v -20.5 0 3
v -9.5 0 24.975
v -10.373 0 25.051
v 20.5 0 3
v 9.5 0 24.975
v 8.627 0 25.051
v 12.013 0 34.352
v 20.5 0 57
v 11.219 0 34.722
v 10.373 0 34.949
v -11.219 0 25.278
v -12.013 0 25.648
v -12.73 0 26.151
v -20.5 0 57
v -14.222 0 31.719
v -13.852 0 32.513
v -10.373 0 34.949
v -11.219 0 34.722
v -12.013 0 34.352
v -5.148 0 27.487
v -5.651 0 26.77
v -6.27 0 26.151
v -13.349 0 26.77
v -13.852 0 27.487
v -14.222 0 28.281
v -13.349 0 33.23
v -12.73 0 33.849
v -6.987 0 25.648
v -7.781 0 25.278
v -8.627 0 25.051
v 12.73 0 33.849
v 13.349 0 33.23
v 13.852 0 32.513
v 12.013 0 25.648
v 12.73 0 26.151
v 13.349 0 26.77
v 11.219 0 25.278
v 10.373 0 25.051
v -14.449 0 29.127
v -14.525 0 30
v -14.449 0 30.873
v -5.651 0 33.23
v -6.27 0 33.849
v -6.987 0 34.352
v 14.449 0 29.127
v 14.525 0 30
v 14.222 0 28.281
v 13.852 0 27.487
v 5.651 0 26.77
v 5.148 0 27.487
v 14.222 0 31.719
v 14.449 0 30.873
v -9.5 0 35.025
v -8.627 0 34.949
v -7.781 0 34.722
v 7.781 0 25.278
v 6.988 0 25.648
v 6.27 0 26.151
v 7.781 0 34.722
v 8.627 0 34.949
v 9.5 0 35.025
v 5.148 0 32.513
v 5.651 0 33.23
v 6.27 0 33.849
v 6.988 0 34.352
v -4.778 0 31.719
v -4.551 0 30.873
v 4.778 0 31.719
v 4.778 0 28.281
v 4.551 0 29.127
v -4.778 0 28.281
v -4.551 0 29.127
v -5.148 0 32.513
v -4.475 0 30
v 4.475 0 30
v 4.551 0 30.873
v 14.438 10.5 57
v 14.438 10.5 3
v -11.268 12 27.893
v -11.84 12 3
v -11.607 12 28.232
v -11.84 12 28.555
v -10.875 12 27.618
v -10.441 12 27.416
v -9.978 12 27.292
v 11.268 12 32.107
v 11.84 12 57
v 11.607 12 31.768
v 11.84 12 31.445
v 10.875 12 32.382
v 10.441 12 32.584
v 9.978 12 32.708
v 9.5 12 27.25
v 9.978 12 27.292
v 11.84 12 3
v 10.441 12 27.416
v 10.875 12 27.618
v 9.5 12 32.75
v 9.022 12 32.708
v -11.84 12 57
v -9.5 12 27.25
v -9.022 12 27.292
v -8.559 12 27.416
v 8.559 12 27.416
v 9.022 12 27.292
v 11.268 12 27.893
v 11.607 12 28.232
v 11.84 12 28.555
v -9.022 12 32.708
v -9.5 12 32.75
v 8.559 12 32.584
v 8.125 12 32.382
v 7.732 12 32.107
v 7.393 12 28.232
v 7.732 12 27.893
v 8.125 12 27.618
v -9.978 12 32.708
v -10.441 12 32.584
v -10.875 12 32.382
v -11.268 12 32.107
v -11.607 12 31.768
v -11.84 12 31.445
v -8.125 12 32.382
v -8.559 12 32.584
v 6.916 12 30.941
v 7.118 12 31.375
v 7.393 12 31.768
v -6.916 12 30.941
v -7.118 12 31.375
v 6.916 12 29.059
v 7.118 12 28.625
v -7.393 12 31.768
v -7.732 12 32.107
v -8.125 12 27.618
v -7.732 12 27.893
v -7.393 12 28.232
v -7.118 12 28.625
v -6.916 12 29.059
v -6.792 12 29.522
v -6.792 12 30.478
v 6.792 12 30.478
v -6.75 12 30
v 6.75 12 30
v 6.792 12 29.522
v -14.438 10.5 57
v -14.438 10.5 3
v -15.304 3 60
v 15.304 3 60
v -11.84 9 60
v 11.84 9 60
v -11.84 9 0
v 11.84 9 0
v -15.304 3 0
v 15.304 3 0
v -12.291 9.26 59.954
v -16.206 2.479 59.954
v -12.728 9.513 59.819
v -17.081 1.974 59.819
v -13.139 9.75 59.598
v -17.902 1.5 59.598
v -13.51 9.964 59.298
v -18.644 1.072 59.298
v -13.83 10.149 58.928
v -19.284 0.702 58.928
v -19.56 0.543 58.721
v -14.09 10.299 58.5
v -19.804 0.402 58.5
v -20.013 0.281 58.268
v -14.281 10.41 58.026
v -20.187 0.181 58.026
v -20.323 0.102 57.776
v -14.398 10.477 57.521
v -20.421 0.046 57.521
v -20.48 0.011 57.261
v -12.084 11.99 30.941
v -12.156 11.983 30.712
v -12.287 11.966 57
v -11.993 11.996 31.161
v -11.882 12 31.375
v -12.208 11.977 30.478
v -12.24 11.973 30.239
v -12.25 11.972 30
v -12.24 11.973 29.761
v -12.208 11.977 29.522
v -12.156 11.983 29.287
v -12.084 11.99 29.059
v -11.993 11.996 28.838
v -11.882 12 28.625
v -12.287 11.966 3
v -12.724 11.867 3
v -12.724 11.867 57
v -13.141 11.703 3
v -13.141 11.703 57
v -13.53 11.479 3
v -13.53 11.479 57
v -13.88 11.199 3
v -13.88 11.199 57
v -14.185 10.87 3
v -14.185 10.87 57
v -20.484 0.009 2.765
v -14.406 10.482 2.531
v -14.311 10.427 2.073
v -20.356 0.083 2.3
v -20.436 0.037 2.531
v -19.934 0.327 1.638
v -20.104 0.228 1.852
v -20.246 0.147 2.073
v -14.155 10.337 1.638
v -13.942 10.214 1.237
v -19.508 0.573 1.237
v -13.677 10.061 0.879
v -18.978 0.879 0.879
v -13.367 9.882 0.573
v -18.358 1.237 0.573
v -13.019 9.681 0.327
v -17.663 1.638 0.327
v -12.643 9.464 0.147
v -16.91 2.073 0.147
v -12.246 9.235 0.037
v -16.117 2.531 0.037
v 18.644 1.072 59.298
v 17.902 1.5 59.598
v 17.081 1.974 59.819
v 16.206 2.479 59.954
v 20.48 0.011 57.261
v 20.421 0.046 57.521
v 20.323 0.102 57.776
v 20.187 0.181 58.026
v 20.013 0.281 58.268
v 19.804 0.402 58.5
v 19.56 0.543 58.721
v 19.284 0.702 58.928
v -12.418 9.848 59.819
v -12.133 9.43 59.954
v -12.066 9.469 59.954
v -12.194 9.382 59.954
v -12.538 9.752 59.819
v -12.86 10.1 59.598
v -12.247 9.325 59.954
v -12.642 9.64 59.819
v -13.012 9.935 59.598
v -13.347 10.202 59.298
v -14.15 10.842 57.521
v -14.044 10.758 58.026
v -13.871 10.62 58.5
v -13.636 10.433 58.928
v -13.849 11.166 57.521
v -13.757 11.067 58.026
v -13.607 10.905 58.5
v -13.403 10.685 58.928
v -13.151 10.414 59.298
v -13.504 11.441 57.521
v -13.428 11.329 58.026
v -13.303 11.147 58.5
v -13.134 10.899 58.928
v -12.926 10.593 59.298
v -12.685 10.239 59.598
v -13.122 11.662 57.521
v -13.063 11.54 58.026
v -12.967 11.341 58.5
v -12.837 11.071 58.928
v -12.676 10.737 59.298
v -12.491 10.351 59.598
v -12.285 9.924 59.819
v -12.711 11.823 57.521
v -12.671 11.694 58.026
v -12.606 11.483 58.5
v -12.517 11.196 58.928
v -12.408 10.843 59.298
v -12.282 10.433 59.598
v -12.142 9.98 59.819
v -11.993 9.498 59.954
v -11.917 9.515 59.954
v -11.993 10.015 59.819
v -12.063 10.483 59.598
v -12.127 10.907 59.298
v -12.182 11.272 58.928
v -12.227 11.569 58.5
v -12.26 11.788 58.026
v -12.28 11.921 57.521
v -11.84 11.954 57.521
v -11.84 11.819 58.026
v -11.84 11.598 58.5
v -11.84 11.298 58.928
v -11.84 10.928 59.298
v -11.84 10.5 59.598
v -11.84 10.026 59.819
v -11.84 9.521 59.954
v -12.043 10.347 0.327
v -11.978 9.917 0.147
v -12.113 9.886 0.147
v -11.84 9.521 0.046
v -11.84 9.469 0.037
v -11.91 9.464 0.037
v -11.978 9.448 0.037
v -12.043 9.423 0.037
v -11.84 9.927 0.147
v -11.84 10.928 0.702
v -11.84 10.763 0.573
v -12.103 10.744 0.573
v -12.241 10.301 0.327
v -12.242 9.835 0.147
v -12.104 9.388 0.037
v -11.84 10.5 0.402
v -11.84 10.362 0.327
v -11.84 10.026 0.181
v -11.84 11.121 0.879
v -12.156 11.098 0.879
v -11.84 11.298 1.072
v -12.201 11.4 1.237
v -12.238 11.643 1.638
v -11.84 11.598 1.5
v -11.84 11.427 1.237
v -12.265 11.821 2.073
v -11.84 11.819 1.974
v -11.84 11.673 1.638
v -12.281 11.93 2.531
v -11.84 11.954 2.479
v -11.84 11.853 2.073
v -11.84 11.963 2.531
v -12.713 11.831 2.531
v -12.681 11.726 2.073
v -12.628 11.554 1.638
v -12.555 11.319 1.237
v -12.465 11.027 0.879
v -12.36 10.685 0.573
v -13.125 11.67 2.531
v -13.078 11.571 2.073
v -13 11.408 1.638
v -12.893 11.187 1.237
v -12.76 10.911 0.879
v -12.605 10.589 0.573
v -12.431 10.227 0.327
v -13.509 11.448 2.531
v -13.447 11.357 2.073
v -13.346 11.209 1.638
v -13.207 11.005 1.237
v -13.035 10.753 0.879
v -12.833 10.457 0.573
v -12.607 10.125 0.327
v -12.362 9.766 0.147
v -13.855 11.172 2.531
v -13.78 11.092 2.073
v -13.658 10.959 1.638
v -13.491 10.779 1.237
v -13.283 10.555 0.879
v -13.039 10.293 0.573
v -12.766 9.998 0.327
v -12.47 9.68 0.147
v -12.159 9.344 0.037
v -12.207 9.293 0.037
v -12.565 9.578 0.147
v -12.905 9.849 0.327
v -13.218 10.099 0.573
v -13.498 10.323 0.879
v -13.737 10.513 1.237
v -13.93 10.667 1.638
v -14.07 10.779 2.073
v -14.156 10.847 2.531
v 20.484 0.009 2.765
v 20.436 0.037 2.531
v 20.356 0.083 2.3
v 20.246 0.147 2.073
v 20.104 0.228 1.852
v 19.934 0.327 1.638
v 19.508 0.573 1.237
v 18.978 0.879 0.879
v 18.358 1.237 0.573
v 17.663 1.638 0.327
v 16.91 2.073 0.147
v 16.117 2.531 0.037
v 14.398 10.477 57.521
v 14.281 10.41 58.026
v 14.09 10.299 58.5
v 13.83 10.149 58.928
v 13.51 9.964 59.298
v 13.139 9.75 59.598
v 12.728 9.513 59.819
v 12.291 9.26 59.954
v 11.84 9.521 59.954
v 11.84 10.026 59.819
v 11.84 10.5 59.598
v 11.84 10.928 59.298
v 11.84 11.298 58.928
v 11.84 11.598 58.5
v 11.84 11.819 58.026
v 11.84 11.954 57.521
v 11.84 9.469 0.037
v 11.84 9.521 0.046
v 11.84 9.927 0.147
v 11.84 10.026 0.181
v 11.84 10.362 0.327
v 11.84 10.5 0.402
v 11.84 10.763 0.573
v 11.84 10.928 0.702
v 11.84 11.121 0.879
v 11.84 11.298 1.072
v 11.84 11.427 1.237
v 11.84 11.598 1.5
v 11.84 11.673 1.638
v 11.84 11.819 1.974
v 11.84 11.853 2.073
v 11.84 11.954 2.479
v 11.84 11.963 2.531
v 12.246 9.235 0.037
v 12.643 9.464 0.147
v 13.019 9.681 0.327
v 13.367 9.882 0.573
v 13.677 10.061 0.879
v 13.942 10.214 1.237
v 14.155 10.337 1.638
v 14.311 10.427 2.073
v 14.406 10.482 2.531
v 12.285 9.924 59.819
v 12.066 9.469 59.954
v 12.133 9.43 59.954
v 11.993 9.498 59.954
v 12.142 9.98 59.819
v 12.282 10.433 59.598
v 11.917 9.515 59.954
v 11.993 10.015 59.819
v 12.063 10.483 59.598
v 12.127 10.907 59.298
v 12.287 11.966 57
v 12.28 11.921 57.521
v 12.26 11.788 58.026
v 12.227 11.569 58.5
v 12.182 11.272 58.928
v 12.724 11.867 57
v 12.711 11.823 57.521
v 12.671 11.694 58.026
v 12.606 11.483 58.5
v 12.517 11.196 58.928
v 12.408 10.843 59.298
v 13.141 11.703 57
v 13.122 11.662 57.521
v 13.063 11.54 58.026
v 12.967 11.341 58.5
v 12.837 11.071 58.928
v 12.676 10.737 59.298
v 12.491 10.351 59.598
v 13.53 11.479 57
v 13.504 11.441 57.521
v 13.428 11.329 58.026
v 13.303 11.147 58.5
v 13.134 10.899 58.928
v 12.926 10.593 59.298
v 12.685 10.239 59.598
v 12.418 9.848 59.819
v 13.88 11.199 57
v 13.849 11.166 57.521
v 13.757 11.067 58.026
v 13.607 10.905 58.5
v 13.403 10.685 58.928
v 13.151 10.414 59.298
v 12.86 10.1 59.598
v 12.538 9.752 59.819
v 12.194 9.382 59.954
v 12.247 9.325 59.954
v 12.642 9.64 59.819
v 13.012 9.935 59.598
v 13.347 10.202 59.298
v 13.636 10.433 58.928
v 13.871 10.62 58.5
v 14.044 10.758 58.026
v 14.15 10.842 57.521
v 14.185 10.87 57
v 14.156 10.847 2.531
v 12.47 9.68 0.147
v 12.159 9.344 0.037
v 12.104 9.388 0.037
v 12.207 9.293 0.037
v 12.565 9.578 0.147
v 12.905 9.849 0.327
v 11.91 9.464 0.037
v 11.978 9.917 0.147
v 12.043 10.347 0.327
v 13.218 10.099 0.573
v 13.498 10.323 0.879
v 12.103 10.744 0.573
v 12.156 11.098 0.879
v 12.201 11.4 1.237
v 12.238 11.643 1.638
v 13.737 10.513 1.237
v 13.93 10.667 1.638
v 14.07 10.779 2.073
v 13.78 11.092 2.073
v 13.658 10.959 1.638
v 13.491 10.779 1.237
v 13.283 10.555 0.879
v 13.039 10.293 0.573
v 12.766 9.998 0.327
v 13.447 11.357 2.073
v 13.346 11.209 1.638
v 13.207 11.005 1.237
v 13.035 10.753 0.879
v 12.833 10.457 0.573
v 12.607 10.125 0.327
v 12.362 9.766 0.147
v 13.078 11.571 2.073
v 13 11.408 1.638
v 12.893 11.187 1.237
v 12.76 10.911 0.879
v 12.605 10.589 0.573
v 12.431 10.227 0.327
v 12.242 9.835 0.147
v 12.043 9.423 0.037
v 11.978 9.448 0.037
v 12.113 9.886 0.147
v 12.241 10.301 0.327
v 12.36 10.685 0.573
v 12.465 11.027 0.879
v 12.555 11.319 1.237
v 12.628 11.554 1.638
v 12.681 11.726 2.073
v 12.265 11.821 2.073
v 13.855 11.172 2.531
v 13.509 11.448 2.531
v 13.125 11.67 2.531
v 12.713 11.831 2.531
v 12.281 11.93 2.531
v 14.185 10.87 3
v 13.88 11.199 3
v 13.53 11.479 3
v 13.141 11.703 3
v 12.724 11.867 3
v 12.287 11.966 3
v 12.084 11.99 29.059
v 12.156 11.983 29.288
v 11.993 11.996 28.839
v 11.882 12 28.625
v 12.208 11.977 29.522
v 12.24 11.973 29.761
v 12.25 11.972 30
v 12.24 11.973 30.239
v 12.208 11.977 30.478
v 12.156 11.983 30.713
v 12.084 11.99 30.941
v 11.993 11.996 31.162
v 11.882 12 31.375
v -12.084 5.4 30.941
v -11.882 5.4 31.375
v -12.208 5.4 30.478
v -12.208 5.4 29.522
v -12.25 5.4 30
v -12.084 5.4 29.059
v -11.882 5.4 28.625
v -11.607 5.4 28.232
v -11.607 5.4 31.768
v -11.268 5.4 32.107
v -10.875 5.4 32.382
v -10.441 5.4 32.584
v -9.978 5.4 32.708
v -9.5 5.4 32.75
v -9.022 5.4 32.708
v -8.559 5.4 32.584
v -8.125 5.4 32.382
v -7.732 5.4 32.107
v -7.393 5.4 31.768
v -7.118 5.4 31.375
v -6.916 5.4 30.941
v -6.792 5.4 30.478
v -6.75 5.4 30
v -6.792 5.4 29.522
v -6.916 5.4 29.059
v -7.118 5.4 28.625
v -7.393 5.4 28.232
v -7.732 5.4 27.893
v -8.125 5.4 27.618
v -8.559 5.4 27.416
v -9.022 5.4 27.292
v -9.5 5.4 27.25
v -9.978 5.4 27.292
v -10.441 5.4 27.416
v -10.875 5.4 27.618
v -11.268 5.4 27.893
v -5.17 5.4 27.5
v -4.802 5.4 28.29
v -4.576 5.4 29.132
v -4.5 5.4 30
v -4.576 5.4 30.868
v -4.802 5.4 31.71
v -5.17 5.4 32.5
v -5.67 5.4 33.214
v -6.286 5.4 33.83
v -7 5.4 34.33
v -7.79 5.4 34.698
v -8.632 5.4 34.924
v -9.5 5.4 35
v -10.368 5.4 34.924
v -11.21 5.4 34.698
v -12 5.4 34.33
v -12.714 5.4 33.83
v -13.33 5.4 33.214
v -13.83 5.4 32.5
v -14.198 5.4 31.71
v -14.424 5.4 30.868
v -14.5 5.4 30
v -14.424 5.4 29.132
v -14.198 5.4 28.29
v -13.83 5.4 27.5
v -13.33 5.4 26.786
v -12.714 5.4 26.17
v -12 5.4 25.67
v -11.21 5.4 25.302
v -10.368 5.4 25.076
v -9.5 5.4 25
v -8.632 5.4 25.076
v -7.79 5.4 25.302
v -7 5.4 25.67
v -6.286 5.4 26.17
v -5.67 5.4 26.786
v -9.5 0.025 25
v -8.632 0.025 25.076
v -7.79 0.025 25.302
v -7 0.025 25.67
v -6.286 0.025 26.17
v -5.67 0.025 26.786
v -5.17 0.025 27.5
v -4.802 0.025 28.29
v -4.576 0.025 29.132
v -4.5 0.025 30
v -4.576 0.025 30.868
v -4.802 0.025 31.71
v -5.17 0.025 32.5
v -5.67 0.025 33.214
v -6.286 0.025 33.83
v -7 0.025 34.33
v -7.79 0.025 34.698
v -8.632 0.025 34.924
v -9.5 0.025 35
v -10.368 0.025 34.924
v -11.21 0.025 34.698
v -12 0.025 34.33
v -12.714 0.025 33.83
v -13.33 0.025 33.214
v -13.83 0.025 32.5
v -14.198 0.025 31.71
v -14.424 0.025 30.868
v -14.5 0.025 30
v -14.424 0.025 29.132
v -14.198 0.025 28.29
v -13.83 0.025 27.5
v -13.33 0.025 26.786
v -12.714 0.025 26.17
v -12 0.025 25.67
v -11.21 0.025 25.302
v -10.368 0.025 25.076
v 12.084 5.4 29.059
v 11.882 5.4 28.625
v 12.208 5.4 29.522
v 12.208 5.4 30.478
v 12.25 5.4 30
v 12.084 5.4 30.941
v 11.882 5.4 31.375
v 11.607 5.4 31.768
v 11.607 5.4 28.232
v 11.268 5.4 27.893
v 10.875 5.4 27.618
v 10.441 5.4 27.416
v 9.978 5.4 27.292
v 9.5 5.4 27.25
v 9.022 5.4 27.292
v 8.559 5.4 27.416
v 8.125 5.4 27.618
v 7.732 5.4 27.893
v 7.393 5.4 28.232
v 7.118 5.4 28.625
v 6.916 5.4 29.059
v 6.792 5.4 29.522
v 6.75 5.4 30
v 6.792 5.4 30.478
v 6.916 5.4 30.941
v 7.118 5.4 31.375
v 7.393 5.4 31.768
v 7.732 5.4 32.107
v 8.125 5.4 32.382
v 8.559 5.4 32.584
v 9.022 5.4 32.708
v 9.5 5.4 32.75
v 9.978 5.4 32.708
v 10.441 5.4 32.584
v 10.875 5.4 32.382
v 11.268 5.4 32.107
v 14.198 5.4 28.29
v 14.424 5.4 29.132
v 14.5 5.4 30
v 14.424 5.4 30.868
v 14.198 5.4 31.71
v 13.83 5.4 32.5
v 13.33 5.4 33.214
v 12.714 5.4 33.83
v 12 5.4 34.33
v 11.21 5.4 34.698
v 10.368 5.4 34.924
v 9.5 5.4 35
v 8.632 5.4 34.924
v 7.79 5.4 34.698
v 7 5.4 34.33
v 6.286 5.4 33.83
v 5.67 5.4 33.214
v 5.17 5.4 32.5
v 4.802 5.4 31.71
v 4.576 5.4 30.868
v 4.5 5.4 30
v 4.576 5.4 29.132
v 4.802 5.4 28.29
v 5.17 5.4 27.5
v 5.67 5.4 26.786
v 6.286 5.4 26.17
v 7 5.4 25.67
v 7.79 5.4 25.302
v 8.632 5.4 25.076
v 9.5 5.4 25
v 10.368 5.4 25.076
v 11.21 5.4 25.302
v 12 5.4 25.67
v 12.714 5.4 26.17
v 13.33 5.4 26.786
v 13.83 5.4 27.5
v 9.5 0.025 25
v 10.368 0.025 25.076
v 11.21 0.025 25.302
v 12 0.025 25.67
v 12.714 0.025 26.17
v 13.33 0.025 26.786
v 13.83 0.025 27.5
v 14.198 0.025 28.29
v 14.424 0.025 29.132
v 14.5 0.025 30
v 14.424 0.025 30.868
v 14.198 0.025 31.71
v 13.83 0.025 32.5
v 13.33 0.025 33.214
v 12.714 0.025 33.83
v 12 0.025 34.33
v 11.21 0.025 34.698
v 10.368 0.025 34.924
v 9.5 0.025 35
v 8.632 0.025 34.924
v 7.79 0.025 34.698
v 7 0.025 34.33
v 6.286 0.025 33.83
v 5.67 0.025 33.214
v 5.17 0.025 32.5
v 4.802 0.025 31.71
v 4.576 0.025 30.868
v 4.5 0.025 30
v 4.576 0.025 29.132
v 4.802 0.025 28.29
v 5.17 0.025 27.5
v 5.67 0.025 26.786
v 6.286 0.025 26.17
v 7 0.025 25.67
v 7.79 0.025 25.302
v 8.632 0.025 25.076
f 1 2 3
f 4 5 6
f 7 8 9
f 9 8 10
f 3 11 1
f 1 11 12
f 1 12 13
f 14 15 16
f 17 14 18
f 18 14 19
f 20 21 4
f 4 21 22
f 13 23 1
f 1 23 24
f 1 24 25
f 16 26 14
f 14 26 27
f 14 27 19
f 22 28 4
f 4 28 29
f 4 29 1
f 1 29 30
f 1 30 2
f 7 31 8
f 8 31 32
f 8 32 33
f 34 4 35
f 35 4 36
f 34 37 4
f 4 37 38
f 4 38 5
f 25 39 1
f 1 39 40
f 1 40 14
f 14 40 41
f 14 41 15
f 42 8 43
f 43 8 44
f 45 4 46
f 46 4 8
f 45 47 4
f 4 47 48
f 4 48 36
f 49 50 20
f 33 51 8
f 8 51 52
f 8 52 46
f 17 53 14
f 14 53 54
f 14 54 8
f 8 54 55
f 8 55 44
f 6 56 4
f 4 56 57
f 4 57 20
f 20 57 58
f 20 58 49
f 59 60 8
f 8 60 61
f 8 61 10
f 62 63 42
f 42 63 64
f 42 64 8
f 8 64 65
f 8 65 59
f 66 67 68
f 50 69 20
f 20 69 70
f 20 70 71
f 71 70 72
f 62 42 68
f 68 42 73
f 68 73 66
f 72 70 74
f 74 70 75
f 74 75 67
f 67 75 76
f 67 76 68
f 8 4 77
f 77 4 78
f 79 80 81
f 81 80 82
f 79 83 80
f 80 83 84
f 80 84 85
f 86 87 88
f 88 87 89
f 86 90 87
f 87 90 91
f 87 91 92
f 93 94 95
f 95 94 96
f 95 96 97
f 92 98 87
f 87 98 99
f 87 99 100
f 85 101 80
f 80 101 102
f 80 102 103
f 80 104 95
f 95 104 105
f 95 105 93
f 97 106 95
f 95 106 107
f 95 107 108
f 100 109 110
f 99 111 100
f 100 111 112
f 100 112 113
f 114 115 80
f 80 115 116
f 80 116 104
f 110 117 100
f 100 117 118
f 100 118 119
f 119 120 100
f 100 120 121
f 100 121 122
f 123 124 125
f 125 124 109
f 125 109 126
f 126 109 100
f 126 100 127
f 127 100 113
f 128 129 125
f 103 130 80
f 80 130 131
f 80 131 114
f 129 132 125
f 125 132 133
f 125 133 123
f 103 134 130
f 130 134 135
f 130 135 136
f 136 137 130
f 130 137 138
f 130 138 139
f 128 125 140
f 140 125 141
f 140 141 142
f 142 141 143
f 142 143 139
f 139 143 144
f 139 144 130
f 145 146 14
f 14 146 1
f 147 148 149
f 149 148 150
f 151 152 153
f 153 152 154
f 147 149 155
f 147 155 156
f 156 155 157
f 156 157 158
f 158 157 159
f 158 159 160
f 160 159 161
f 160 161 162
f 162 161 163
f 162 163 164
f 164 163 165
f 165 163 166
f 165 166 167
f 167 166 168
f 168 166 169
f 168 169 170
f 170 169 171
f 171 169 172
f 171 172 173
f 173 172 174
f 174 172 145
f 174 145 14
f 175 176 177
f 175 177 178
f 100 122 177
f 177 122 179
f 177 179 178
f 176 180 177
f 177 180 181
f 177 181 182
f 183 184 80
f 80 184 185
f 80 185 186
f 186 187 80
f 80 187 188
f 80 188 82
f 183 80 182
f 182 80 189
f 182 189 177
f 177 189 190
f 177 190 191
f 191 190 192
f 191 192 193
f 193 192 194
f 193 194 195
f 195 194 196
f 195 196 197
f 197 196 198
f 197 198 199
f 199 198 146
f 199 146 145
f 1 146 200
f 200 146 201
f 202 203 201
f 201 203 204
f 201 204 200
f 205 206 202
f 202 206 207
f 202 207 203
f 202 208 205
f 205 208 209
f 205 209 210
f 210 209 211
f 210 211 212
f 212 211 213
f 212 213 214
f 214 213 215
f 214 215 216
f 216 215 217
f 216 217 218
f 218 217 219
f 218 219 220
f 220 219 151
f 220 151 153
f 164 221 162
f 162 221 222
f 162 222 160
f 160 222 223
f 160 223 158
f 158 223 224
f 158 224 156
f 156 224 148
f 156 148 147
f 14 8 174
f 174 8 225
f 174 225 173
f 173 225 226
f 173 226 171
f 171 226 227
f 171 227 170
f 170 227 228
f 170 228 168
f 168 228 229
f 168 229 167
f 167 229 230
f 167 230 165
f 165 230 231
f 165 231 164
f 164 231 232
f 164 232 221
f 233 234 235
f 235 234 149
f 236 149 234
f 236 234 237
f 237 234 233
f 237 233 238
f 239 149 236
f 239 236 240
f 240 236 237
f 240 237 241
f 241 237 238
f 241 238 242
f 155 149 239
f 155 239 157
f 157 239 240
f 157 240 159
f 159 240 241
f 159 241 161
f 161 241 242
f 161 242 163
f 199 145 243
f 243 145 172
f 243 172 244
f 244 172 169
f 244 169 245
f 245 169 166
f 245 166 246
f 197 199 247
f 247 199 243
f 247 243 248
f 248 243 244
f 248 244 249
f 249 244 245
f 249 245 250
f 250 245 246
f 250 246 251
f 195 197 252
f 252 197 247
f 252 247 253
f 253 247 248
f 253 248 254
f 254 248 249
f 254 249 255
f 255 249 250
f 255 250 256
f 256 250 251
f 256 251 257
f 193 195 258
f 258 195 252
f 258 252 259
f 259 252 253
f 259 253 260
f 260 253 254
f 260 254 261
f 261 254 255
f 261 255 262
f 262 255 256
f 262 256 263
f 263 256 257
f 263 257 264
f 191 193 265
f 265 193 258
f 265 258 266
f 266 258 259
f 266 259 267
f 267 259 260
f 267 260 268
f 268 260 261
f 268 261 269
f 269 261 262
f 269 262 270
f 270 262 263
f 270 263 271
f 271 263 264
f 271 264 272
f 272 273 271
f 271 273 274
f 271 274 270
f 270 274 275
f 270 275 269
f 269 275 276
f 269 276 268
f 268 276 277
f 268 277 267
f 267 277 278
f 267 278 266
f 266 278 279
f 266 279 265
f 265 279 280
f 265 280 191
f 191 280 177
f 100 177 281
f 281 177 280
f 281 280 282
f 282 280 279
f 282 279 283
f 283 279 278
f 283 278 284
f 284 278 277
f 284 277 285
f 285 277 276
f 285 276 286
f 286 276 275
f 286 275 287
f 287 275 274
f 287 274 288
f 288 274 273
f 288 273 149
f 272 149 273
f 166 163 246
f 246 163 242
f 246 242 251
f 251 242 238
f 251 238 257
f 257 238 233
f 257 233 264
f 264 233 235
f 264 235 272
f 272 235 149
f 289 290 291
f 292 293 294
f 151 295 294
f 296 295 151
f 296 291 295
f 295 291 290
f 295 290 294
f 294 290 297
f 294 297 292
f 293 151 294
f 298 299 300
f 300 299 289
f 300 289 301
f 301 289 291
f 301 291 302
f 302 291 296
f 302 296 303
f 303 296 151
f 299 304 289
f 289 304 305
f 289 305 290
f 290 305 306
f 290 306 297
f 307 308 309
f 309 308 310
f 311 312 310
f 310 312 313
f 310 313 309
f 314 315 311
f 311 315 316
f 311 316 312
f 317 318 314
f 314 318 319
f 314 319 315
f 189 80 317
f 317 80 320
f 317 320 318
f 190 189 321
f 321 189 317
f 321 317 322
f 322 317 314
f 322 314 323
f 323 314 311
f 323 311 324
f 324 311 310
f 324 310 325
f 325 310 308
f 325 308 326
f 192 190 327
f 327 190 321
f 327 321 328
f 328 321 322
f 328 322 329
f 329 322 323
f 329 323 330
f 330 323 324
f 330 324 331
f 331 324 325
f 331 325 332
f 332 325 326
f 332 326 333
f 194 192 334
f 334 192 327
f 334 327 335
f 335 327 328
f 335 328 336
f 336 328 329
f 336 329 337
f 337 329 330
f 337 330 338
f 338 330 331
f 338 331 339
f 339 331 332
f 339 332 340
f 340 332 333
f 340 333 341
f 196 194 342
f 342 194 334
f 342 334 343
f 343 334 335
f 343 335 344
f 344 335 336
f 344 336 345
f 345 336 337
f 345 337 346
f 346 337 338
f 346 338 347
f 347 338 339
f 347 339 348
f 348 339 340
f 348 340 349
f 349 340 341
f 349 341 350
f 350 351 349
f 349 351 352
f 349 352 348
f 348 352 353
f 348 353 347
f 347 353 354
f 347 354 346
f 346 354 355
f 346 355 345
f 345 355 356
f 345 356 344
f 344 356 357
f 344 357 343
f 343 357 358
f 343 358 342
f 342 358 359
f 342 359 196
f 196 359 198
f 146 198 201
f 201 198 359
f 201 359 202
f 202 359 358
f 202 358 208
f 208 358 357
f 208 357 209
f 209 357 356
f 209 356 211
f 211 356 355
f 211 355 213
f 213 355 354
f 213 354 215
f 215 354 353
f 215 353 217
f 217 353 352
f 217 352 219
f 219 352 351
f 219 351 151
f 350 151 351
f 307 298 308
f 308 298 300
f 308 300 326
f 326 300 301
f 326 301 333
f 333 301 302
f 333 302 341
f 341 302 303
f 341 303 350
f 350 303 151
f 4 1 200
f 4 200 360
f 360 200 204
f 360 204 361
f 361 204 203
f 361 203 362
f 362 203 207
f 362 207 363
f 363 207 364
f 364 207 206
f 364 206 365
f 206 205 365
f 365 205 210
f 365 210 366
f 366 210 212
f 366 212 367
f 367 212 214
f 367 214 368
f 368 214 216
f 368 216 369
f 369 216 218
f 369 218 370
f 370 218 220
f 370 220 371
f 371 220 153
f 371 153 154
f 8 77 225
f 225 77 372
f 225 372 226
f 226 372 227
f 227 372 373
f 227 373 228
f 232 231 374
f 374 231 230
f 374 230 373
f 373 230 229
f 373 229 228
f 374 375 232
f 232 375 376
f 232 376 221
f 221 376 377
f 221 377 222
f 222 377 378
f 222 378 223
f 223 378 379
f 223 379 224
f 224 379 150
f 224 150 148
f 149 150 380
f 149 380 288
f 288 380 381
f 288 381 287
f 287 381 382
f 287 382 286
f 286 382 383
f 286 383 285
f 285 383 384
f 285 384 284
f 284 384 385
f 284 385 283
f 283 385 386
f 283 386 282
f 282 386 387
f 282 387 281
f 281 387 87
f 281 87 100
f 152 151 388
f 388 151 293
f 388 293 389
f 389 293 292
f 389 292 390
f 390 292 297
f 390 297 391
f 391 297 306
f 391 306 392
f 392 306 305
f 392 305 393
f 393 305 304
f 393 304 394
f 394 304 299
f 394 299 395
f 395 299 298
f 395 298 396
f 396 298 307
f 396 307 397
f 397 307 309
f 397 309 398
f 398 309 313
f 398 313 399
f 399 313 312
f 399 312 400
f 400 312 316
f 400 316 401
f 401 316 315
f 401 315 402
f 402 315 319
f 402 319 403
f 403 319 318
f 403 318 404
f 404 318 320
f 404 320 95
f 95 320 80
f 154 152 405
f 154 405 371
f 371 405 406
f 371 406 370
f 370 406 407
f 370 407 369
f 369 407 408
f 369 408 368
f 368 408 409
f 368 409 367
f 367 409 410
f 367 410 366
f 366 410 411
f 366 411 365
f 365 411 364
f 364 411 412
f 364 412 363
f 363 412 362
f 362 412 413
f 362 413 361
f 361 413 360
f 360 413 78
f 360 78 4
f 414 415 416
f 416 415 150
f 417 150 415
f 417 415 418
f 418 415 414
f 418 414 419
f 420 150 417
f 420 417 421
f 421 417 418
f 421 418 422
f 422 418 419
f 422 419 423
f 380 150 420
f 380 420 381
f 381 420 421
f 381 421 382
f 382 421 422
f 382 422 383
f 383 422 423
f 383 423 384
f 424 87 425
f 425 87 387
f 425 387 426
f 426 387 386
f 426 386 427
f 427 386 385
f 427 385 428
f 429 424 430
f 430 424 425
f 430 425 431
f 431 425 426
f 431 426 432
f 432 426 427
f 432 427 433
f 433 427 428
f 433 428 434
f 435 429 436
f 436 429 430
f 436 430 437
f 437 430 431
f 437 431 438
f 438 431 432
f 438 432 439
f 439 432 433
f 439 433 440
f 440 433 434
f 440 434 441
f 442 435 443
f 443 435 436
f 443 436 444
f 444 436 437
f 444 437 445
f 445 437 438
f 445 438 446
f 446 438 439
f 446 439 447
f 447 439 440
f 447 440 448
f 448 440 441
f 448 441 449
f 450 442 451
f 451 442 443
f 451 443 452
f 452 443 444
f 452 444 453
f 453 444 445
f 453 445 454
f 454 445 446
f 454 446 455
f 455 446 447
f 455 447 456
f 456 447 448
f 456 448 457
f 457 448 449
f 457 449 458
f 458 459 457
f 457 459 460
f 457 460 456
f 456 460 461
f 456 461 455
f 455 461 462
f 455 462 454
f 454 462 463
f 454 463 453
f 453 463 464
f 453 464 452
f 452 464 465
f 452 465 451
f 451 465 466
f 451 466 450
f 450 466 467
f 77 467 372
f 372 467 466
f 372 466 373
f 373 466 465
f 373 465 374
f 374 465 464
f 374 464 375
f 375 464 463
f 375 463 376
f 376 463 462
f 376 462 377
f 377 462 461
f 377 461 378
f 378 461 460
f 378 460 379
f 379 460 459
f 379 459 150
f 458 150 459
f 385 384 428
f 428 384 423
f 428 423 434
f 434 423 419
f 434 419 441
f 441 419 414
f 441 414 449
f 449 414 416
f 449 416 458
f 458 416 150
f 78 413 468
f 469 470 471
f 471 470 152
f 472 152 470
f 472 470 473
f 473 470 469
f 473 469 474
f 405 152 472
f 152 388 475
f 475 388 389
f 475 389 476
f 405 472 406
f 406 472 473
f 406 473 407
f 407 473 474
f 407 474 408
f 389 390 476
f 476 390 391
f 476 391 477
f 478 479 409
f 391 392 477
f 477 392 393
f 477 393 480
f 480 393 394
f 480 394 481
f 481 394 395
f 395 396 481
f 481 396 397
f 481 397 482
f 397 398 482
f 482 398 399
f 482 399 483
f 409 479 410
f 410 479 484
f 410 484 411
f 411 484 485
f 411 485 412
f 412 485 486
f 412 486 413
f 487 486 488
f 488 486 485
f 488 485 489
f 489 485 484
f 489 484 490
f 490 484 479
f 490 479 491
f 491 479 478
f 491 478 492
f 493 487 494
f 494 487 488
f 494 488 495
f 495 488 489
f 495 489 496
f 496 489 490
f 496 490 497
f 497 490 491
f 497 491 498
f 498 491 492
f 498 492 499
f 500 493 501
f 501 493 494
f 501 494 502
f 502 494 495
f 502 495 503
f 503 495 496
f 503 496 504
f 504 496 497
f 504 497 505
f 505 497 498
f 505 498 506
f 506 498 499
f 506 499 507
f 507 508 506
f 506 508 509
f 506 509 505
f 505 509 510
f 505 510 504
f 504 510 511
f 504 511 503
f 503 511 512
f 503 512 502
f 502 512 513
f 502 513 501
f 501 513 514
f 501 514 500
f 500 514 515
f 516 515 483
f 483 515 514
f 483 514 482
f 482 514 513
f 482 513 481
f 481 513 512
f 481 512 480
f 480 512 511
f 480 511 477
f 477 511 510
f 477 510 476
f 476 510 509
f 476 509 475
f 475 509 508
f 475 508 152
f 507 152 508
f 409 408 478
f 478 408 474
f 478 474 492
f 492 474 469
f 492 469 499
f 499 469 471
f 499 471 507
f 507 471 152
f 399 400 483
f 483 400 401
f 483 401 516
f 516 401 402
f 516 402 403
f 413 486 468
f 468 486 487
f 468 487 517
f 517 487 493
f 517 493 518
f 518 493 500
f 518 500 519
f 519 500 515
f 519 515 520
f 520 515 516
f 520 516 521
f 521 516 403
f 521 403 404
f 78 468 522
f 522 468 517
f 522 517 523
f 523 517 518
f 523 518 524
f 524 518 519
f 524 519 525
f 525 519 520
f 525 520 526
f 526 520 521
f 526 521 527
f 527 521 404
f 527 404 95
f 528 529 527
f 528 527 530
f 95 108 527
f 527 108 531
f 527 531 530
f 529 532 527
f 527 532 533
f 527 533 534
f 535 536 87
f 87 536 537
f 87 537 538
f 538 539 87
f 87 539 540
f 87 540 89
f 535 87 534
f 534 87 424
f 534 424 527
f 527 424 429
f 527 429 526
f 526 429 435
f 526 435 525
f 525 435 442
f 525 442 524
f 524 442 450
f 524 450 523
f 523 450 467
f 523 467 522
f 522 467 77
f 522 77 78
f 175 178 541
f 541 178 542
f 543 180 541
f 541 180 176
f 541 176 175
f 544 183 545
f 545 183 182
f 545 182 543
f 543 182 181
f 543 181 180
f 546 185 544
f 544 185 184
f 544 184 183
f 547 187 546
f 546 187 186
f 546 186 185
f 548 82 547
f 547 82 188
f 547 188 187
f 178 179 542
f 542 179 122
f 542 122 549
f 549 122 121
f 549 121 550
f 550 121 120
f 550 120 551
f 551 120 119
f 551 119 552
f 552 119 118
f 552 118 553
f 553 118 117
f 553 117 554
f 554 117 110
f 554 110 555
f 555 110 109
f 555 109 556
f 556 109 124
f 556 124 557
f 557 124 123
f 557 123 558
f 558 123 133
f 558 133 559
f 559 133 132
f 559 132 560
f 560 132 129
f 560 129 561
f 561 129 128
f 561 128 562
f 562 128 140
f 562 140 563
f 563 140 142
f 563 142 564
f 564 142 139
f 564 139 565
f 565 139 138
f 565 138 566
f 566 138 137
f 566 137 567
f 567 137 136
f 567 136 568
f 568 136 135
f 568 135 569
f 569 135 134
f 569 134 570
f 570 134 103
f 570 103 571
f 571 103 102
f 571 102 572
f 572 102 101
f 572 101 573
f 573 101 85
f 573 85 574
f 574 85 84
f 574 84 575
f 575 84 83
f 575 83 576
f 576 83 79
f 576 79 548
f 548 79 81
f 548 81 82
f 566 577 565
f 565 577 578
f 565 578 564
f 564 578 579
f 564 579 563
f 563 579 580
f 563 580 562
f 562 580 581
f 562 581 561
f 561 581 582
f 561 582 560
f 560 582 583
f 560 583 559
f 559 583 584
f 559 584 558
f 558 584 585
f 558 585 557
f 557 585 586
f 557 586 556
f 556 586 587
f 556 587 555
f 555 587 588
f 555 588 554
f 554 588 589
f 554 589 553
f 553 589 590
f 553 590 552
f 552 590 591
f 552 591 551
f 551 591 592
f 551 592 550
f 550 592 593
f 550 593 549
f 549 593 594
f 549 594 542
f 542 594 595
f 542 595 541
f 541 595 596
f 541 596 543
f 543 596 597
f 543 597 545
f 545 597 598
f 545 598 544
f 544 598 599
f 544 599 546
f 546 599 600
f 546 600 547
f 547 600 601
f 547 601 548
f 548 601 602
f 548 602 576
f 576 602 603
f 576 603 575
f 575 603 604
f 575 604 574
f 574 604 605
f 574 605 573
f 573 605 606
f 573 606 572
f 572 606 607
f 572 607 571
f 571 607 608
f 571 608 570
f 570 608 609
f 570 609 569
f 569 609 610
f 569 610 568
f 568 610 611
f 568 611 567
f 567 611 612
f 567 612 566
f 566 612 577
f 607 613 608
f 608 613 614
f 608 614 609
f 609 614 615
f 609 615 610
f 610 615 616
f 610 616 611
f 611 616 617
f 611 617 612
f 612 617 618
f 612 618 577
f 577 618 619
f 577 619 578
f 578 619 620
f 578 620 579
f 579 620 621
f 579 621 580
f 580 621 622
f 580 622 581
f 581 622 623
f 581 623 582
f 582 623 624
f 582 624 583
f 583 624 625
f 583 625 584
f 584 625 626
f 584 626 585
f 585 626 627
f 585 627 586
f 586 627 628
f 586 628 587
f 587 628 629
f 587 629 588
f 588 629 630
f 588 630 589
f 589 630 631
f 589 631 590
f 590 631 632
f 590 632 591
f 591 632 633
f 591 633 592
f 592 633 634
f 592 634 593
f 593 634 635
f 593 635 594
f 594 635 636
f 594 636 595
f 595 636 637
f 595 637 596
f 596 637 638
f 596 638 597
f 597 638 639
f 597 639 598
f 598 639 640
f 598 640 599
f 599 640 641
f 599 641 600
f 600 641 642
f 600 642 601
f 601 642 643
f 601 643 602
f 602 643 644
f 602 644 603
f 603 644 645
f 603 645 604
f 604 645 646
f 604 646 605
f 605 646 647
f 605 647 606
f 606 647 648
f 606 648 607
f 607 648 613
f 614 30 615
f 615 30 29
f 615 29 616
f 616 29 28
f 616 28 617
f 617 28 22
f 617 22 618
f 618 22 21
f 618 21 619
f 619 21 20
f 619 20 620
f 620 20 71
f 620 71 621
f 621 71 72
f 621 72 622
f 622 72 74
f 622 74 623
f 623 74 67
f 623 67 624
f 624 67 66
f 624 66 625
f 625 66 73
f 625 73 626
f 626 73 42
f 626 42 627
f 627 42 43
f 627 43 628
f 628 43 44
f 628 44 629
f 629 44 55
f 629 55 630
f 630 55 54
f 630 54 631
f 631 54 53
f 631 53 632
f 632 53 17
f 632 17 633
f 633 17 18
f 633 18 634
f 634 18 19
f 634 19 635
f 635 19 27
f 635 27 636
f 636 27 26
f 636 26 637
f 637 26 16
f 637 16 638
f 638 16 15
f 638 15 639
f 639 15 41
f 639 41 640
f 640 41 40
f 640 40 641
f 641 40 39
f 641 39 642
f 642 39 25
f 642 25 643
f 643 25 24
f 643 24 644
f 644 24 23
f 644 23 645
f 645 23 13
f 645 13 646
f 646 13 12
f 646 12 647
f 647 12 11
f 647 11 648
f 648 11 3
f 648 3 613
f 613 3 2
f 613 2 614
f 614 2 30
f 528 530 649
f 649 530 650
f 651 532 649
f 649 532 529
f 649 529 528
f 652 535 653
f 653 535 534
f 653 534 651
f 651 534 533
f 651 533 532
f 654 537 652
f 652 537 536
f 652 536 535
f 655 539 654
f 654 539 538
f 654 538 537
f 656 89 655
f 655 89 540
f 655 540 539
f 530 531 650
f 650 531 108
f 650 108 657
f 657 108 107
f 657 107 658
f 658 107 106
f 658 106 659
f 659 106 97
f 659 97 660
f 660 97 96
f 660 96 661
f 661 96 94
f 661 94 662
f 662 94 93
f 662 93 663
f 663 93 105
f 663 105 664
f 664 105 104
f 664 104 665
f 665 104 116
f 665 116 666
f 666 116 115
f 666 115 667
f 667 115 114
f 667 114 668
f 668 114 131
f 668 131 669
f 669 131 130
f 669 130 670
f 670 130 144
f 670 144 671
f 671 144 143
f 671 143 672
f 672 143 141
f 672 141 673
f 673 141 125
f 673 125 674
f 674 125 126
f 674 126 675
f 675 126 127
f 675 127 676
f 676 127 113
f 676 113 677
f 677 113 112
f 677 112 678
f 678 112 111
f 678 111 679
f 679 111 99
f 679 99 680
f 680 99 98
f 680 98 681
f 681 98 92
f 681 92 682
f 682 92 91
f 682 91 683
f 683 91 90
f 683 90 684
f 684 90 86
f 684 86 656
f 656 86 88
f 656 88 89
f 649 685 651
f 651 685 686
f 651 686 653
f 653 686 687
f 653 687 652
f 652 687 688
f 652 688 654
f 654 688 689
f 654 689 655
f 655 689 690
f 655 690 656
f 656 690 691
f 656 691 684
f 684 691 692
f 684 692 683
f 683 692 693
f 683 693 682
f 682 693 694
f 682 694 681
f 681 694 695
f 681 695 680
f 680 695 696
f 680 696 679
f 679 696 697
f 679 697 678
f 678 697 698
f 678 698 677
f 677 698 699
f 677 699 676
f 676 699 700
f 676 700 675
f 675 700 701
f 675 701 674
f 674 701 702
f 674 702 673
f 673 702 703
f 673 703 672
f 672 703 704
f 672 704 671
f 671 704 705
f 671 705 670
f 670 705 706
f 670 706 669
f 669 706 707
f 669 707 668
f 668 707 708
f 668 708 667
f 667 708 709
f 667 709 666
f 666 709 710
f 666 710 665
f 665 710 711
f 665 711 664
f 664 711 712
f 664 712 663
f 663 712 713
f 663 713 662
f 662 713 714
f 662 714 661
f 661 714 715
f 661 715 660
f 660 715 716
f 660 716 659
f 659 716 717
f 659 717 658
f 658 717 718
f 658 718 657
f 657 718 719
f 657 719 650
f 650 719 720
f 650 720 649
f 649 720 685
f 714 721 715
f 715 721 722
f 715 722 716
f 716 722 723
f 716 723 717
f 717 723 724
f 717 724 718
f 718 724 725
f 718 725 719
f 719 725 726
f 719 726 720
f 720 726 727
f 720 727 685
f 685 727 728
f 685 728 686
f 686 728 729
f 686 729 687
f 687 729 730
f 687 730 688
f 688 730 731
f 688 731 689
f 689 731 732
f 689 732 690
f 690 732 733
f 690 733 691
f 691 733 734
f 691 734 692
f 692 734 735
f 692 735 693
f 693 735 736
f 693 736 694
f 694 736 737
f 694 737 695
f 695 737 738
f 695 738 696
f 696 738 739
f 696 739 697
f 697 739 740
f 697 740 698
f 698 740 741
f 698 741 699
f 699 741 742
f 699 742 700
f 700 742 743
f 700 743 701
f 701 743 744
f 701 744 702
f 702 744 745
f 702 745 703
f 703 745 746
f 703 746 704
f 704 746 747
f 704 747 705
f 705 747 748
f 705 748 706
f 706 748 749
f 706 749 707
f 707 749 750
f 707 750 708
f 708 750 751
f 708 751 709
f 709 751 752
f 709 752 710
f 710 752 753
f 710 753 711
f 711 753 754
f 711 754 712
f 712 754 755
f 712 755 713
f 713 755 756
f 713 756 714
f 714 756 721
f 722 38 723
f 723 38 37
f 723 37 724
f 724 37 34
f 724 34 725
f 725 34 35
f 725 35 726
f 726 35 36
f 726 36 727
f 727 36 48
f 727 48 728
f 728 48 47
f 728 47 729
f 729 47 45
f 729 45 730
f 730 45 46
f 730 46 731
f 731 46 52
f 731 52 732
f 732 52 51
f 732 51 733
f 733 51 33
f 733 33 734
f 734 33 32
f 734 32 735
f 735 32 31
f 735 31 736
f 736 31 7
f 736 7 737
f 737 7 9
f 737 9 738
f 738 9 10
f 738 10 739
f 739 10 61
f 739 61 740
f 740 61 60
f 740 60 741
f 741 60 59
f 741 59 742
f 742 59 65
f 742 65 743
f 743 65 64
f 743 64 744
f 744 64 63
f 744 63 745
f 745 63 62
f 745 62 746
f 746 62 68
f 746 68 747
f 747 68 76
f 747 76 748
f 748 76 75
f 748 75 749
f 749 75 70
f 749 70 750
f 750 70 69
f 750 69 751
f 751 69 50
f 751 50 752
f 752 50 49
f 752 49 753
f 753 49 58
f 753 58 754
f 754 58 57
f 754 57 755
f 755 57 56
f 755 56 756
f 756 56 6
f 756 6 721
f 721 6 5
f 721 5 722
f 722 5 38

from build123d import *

# Parameters (mm, degrees)
BOSS_EXTRUDE1_DEPTH                          = 60
FILLET1_R                                    = 3
CBORE_FOR_M5_HEX_SOCKET_HEAD_CAP_SCR_2_COUNT = 2
CBORE_FOR_M5_HEX_SOCKET_HEAD_CAP_SCR_2_PITCH = 19


with BuildPart() as part:
    # Sketch1 → Boss-Extrude1 (new body)
    with BuildSketch(Plane.XY):
        Polygon((-20.5, 0), (-13.57179677, 12), (13.57179677, 12), (20.5, 0), align=None)
    extrude(amount=BOSS_EXTRUDE1_DEPTH)

    # Fillet1
    fillet1_edges = [part.edges().sort_by_distance(p)[0] for p in [
        (0, 12, 60),
        (-17.035898385, 6, 60),
        (0, 0, 60),
        (-17.035898385, 6, 0),
        (0, 12, 0),
        (17.035898385, 6, 0),
        (0, 0, 0),
        (-13.57179677, 12, 30),
        (13.57179677, 12, 30),
        (17.035898385, 6, 60),
    ]]
    fillet(fillet1_edges, radius=FILLET1_R)

    # Sketch5 → CBORE for M5 Hex Socket Head Cap Screw1 (revolve, cut)
    with BuildSketch(Plane(origin=(9.5, 0, 30), x_dir=(0, 0, -1), z_dir=(1, 0, 0))):
        Polygon((0, 0), (0, 12), (2.75, 12), (2.75, 5.4), (5, 5.4), (5, 0.025), (5.025, 0), align=None)
    cbore_for_m5_hex_socket_head_cap_screw1 = revolve(axis=Axis((9.5, -6.35, 30), (0, 1, 0)), mode=Mode.SUBTRACT)

    # CBORE for M5 Hex Socket Head Cap Scr 2: CBORE for M5 Hex Socket Head Cap Screw1 ×2
    with Locations(*[(-i * CBORE_FOR_M5_HEX_SOCKET_HEAD_CAP_SCR_2_PITCH, 0, 0) for i in range(1, CBORE_FOR_M5_HEX_SOCKET_HEAD_CAP_SCR_2_COUNT)]):
        add(cbore_for_m5_hex_socket_head_cap_screw1, mode=Mode.SUBTRACT)


solid = part.part
